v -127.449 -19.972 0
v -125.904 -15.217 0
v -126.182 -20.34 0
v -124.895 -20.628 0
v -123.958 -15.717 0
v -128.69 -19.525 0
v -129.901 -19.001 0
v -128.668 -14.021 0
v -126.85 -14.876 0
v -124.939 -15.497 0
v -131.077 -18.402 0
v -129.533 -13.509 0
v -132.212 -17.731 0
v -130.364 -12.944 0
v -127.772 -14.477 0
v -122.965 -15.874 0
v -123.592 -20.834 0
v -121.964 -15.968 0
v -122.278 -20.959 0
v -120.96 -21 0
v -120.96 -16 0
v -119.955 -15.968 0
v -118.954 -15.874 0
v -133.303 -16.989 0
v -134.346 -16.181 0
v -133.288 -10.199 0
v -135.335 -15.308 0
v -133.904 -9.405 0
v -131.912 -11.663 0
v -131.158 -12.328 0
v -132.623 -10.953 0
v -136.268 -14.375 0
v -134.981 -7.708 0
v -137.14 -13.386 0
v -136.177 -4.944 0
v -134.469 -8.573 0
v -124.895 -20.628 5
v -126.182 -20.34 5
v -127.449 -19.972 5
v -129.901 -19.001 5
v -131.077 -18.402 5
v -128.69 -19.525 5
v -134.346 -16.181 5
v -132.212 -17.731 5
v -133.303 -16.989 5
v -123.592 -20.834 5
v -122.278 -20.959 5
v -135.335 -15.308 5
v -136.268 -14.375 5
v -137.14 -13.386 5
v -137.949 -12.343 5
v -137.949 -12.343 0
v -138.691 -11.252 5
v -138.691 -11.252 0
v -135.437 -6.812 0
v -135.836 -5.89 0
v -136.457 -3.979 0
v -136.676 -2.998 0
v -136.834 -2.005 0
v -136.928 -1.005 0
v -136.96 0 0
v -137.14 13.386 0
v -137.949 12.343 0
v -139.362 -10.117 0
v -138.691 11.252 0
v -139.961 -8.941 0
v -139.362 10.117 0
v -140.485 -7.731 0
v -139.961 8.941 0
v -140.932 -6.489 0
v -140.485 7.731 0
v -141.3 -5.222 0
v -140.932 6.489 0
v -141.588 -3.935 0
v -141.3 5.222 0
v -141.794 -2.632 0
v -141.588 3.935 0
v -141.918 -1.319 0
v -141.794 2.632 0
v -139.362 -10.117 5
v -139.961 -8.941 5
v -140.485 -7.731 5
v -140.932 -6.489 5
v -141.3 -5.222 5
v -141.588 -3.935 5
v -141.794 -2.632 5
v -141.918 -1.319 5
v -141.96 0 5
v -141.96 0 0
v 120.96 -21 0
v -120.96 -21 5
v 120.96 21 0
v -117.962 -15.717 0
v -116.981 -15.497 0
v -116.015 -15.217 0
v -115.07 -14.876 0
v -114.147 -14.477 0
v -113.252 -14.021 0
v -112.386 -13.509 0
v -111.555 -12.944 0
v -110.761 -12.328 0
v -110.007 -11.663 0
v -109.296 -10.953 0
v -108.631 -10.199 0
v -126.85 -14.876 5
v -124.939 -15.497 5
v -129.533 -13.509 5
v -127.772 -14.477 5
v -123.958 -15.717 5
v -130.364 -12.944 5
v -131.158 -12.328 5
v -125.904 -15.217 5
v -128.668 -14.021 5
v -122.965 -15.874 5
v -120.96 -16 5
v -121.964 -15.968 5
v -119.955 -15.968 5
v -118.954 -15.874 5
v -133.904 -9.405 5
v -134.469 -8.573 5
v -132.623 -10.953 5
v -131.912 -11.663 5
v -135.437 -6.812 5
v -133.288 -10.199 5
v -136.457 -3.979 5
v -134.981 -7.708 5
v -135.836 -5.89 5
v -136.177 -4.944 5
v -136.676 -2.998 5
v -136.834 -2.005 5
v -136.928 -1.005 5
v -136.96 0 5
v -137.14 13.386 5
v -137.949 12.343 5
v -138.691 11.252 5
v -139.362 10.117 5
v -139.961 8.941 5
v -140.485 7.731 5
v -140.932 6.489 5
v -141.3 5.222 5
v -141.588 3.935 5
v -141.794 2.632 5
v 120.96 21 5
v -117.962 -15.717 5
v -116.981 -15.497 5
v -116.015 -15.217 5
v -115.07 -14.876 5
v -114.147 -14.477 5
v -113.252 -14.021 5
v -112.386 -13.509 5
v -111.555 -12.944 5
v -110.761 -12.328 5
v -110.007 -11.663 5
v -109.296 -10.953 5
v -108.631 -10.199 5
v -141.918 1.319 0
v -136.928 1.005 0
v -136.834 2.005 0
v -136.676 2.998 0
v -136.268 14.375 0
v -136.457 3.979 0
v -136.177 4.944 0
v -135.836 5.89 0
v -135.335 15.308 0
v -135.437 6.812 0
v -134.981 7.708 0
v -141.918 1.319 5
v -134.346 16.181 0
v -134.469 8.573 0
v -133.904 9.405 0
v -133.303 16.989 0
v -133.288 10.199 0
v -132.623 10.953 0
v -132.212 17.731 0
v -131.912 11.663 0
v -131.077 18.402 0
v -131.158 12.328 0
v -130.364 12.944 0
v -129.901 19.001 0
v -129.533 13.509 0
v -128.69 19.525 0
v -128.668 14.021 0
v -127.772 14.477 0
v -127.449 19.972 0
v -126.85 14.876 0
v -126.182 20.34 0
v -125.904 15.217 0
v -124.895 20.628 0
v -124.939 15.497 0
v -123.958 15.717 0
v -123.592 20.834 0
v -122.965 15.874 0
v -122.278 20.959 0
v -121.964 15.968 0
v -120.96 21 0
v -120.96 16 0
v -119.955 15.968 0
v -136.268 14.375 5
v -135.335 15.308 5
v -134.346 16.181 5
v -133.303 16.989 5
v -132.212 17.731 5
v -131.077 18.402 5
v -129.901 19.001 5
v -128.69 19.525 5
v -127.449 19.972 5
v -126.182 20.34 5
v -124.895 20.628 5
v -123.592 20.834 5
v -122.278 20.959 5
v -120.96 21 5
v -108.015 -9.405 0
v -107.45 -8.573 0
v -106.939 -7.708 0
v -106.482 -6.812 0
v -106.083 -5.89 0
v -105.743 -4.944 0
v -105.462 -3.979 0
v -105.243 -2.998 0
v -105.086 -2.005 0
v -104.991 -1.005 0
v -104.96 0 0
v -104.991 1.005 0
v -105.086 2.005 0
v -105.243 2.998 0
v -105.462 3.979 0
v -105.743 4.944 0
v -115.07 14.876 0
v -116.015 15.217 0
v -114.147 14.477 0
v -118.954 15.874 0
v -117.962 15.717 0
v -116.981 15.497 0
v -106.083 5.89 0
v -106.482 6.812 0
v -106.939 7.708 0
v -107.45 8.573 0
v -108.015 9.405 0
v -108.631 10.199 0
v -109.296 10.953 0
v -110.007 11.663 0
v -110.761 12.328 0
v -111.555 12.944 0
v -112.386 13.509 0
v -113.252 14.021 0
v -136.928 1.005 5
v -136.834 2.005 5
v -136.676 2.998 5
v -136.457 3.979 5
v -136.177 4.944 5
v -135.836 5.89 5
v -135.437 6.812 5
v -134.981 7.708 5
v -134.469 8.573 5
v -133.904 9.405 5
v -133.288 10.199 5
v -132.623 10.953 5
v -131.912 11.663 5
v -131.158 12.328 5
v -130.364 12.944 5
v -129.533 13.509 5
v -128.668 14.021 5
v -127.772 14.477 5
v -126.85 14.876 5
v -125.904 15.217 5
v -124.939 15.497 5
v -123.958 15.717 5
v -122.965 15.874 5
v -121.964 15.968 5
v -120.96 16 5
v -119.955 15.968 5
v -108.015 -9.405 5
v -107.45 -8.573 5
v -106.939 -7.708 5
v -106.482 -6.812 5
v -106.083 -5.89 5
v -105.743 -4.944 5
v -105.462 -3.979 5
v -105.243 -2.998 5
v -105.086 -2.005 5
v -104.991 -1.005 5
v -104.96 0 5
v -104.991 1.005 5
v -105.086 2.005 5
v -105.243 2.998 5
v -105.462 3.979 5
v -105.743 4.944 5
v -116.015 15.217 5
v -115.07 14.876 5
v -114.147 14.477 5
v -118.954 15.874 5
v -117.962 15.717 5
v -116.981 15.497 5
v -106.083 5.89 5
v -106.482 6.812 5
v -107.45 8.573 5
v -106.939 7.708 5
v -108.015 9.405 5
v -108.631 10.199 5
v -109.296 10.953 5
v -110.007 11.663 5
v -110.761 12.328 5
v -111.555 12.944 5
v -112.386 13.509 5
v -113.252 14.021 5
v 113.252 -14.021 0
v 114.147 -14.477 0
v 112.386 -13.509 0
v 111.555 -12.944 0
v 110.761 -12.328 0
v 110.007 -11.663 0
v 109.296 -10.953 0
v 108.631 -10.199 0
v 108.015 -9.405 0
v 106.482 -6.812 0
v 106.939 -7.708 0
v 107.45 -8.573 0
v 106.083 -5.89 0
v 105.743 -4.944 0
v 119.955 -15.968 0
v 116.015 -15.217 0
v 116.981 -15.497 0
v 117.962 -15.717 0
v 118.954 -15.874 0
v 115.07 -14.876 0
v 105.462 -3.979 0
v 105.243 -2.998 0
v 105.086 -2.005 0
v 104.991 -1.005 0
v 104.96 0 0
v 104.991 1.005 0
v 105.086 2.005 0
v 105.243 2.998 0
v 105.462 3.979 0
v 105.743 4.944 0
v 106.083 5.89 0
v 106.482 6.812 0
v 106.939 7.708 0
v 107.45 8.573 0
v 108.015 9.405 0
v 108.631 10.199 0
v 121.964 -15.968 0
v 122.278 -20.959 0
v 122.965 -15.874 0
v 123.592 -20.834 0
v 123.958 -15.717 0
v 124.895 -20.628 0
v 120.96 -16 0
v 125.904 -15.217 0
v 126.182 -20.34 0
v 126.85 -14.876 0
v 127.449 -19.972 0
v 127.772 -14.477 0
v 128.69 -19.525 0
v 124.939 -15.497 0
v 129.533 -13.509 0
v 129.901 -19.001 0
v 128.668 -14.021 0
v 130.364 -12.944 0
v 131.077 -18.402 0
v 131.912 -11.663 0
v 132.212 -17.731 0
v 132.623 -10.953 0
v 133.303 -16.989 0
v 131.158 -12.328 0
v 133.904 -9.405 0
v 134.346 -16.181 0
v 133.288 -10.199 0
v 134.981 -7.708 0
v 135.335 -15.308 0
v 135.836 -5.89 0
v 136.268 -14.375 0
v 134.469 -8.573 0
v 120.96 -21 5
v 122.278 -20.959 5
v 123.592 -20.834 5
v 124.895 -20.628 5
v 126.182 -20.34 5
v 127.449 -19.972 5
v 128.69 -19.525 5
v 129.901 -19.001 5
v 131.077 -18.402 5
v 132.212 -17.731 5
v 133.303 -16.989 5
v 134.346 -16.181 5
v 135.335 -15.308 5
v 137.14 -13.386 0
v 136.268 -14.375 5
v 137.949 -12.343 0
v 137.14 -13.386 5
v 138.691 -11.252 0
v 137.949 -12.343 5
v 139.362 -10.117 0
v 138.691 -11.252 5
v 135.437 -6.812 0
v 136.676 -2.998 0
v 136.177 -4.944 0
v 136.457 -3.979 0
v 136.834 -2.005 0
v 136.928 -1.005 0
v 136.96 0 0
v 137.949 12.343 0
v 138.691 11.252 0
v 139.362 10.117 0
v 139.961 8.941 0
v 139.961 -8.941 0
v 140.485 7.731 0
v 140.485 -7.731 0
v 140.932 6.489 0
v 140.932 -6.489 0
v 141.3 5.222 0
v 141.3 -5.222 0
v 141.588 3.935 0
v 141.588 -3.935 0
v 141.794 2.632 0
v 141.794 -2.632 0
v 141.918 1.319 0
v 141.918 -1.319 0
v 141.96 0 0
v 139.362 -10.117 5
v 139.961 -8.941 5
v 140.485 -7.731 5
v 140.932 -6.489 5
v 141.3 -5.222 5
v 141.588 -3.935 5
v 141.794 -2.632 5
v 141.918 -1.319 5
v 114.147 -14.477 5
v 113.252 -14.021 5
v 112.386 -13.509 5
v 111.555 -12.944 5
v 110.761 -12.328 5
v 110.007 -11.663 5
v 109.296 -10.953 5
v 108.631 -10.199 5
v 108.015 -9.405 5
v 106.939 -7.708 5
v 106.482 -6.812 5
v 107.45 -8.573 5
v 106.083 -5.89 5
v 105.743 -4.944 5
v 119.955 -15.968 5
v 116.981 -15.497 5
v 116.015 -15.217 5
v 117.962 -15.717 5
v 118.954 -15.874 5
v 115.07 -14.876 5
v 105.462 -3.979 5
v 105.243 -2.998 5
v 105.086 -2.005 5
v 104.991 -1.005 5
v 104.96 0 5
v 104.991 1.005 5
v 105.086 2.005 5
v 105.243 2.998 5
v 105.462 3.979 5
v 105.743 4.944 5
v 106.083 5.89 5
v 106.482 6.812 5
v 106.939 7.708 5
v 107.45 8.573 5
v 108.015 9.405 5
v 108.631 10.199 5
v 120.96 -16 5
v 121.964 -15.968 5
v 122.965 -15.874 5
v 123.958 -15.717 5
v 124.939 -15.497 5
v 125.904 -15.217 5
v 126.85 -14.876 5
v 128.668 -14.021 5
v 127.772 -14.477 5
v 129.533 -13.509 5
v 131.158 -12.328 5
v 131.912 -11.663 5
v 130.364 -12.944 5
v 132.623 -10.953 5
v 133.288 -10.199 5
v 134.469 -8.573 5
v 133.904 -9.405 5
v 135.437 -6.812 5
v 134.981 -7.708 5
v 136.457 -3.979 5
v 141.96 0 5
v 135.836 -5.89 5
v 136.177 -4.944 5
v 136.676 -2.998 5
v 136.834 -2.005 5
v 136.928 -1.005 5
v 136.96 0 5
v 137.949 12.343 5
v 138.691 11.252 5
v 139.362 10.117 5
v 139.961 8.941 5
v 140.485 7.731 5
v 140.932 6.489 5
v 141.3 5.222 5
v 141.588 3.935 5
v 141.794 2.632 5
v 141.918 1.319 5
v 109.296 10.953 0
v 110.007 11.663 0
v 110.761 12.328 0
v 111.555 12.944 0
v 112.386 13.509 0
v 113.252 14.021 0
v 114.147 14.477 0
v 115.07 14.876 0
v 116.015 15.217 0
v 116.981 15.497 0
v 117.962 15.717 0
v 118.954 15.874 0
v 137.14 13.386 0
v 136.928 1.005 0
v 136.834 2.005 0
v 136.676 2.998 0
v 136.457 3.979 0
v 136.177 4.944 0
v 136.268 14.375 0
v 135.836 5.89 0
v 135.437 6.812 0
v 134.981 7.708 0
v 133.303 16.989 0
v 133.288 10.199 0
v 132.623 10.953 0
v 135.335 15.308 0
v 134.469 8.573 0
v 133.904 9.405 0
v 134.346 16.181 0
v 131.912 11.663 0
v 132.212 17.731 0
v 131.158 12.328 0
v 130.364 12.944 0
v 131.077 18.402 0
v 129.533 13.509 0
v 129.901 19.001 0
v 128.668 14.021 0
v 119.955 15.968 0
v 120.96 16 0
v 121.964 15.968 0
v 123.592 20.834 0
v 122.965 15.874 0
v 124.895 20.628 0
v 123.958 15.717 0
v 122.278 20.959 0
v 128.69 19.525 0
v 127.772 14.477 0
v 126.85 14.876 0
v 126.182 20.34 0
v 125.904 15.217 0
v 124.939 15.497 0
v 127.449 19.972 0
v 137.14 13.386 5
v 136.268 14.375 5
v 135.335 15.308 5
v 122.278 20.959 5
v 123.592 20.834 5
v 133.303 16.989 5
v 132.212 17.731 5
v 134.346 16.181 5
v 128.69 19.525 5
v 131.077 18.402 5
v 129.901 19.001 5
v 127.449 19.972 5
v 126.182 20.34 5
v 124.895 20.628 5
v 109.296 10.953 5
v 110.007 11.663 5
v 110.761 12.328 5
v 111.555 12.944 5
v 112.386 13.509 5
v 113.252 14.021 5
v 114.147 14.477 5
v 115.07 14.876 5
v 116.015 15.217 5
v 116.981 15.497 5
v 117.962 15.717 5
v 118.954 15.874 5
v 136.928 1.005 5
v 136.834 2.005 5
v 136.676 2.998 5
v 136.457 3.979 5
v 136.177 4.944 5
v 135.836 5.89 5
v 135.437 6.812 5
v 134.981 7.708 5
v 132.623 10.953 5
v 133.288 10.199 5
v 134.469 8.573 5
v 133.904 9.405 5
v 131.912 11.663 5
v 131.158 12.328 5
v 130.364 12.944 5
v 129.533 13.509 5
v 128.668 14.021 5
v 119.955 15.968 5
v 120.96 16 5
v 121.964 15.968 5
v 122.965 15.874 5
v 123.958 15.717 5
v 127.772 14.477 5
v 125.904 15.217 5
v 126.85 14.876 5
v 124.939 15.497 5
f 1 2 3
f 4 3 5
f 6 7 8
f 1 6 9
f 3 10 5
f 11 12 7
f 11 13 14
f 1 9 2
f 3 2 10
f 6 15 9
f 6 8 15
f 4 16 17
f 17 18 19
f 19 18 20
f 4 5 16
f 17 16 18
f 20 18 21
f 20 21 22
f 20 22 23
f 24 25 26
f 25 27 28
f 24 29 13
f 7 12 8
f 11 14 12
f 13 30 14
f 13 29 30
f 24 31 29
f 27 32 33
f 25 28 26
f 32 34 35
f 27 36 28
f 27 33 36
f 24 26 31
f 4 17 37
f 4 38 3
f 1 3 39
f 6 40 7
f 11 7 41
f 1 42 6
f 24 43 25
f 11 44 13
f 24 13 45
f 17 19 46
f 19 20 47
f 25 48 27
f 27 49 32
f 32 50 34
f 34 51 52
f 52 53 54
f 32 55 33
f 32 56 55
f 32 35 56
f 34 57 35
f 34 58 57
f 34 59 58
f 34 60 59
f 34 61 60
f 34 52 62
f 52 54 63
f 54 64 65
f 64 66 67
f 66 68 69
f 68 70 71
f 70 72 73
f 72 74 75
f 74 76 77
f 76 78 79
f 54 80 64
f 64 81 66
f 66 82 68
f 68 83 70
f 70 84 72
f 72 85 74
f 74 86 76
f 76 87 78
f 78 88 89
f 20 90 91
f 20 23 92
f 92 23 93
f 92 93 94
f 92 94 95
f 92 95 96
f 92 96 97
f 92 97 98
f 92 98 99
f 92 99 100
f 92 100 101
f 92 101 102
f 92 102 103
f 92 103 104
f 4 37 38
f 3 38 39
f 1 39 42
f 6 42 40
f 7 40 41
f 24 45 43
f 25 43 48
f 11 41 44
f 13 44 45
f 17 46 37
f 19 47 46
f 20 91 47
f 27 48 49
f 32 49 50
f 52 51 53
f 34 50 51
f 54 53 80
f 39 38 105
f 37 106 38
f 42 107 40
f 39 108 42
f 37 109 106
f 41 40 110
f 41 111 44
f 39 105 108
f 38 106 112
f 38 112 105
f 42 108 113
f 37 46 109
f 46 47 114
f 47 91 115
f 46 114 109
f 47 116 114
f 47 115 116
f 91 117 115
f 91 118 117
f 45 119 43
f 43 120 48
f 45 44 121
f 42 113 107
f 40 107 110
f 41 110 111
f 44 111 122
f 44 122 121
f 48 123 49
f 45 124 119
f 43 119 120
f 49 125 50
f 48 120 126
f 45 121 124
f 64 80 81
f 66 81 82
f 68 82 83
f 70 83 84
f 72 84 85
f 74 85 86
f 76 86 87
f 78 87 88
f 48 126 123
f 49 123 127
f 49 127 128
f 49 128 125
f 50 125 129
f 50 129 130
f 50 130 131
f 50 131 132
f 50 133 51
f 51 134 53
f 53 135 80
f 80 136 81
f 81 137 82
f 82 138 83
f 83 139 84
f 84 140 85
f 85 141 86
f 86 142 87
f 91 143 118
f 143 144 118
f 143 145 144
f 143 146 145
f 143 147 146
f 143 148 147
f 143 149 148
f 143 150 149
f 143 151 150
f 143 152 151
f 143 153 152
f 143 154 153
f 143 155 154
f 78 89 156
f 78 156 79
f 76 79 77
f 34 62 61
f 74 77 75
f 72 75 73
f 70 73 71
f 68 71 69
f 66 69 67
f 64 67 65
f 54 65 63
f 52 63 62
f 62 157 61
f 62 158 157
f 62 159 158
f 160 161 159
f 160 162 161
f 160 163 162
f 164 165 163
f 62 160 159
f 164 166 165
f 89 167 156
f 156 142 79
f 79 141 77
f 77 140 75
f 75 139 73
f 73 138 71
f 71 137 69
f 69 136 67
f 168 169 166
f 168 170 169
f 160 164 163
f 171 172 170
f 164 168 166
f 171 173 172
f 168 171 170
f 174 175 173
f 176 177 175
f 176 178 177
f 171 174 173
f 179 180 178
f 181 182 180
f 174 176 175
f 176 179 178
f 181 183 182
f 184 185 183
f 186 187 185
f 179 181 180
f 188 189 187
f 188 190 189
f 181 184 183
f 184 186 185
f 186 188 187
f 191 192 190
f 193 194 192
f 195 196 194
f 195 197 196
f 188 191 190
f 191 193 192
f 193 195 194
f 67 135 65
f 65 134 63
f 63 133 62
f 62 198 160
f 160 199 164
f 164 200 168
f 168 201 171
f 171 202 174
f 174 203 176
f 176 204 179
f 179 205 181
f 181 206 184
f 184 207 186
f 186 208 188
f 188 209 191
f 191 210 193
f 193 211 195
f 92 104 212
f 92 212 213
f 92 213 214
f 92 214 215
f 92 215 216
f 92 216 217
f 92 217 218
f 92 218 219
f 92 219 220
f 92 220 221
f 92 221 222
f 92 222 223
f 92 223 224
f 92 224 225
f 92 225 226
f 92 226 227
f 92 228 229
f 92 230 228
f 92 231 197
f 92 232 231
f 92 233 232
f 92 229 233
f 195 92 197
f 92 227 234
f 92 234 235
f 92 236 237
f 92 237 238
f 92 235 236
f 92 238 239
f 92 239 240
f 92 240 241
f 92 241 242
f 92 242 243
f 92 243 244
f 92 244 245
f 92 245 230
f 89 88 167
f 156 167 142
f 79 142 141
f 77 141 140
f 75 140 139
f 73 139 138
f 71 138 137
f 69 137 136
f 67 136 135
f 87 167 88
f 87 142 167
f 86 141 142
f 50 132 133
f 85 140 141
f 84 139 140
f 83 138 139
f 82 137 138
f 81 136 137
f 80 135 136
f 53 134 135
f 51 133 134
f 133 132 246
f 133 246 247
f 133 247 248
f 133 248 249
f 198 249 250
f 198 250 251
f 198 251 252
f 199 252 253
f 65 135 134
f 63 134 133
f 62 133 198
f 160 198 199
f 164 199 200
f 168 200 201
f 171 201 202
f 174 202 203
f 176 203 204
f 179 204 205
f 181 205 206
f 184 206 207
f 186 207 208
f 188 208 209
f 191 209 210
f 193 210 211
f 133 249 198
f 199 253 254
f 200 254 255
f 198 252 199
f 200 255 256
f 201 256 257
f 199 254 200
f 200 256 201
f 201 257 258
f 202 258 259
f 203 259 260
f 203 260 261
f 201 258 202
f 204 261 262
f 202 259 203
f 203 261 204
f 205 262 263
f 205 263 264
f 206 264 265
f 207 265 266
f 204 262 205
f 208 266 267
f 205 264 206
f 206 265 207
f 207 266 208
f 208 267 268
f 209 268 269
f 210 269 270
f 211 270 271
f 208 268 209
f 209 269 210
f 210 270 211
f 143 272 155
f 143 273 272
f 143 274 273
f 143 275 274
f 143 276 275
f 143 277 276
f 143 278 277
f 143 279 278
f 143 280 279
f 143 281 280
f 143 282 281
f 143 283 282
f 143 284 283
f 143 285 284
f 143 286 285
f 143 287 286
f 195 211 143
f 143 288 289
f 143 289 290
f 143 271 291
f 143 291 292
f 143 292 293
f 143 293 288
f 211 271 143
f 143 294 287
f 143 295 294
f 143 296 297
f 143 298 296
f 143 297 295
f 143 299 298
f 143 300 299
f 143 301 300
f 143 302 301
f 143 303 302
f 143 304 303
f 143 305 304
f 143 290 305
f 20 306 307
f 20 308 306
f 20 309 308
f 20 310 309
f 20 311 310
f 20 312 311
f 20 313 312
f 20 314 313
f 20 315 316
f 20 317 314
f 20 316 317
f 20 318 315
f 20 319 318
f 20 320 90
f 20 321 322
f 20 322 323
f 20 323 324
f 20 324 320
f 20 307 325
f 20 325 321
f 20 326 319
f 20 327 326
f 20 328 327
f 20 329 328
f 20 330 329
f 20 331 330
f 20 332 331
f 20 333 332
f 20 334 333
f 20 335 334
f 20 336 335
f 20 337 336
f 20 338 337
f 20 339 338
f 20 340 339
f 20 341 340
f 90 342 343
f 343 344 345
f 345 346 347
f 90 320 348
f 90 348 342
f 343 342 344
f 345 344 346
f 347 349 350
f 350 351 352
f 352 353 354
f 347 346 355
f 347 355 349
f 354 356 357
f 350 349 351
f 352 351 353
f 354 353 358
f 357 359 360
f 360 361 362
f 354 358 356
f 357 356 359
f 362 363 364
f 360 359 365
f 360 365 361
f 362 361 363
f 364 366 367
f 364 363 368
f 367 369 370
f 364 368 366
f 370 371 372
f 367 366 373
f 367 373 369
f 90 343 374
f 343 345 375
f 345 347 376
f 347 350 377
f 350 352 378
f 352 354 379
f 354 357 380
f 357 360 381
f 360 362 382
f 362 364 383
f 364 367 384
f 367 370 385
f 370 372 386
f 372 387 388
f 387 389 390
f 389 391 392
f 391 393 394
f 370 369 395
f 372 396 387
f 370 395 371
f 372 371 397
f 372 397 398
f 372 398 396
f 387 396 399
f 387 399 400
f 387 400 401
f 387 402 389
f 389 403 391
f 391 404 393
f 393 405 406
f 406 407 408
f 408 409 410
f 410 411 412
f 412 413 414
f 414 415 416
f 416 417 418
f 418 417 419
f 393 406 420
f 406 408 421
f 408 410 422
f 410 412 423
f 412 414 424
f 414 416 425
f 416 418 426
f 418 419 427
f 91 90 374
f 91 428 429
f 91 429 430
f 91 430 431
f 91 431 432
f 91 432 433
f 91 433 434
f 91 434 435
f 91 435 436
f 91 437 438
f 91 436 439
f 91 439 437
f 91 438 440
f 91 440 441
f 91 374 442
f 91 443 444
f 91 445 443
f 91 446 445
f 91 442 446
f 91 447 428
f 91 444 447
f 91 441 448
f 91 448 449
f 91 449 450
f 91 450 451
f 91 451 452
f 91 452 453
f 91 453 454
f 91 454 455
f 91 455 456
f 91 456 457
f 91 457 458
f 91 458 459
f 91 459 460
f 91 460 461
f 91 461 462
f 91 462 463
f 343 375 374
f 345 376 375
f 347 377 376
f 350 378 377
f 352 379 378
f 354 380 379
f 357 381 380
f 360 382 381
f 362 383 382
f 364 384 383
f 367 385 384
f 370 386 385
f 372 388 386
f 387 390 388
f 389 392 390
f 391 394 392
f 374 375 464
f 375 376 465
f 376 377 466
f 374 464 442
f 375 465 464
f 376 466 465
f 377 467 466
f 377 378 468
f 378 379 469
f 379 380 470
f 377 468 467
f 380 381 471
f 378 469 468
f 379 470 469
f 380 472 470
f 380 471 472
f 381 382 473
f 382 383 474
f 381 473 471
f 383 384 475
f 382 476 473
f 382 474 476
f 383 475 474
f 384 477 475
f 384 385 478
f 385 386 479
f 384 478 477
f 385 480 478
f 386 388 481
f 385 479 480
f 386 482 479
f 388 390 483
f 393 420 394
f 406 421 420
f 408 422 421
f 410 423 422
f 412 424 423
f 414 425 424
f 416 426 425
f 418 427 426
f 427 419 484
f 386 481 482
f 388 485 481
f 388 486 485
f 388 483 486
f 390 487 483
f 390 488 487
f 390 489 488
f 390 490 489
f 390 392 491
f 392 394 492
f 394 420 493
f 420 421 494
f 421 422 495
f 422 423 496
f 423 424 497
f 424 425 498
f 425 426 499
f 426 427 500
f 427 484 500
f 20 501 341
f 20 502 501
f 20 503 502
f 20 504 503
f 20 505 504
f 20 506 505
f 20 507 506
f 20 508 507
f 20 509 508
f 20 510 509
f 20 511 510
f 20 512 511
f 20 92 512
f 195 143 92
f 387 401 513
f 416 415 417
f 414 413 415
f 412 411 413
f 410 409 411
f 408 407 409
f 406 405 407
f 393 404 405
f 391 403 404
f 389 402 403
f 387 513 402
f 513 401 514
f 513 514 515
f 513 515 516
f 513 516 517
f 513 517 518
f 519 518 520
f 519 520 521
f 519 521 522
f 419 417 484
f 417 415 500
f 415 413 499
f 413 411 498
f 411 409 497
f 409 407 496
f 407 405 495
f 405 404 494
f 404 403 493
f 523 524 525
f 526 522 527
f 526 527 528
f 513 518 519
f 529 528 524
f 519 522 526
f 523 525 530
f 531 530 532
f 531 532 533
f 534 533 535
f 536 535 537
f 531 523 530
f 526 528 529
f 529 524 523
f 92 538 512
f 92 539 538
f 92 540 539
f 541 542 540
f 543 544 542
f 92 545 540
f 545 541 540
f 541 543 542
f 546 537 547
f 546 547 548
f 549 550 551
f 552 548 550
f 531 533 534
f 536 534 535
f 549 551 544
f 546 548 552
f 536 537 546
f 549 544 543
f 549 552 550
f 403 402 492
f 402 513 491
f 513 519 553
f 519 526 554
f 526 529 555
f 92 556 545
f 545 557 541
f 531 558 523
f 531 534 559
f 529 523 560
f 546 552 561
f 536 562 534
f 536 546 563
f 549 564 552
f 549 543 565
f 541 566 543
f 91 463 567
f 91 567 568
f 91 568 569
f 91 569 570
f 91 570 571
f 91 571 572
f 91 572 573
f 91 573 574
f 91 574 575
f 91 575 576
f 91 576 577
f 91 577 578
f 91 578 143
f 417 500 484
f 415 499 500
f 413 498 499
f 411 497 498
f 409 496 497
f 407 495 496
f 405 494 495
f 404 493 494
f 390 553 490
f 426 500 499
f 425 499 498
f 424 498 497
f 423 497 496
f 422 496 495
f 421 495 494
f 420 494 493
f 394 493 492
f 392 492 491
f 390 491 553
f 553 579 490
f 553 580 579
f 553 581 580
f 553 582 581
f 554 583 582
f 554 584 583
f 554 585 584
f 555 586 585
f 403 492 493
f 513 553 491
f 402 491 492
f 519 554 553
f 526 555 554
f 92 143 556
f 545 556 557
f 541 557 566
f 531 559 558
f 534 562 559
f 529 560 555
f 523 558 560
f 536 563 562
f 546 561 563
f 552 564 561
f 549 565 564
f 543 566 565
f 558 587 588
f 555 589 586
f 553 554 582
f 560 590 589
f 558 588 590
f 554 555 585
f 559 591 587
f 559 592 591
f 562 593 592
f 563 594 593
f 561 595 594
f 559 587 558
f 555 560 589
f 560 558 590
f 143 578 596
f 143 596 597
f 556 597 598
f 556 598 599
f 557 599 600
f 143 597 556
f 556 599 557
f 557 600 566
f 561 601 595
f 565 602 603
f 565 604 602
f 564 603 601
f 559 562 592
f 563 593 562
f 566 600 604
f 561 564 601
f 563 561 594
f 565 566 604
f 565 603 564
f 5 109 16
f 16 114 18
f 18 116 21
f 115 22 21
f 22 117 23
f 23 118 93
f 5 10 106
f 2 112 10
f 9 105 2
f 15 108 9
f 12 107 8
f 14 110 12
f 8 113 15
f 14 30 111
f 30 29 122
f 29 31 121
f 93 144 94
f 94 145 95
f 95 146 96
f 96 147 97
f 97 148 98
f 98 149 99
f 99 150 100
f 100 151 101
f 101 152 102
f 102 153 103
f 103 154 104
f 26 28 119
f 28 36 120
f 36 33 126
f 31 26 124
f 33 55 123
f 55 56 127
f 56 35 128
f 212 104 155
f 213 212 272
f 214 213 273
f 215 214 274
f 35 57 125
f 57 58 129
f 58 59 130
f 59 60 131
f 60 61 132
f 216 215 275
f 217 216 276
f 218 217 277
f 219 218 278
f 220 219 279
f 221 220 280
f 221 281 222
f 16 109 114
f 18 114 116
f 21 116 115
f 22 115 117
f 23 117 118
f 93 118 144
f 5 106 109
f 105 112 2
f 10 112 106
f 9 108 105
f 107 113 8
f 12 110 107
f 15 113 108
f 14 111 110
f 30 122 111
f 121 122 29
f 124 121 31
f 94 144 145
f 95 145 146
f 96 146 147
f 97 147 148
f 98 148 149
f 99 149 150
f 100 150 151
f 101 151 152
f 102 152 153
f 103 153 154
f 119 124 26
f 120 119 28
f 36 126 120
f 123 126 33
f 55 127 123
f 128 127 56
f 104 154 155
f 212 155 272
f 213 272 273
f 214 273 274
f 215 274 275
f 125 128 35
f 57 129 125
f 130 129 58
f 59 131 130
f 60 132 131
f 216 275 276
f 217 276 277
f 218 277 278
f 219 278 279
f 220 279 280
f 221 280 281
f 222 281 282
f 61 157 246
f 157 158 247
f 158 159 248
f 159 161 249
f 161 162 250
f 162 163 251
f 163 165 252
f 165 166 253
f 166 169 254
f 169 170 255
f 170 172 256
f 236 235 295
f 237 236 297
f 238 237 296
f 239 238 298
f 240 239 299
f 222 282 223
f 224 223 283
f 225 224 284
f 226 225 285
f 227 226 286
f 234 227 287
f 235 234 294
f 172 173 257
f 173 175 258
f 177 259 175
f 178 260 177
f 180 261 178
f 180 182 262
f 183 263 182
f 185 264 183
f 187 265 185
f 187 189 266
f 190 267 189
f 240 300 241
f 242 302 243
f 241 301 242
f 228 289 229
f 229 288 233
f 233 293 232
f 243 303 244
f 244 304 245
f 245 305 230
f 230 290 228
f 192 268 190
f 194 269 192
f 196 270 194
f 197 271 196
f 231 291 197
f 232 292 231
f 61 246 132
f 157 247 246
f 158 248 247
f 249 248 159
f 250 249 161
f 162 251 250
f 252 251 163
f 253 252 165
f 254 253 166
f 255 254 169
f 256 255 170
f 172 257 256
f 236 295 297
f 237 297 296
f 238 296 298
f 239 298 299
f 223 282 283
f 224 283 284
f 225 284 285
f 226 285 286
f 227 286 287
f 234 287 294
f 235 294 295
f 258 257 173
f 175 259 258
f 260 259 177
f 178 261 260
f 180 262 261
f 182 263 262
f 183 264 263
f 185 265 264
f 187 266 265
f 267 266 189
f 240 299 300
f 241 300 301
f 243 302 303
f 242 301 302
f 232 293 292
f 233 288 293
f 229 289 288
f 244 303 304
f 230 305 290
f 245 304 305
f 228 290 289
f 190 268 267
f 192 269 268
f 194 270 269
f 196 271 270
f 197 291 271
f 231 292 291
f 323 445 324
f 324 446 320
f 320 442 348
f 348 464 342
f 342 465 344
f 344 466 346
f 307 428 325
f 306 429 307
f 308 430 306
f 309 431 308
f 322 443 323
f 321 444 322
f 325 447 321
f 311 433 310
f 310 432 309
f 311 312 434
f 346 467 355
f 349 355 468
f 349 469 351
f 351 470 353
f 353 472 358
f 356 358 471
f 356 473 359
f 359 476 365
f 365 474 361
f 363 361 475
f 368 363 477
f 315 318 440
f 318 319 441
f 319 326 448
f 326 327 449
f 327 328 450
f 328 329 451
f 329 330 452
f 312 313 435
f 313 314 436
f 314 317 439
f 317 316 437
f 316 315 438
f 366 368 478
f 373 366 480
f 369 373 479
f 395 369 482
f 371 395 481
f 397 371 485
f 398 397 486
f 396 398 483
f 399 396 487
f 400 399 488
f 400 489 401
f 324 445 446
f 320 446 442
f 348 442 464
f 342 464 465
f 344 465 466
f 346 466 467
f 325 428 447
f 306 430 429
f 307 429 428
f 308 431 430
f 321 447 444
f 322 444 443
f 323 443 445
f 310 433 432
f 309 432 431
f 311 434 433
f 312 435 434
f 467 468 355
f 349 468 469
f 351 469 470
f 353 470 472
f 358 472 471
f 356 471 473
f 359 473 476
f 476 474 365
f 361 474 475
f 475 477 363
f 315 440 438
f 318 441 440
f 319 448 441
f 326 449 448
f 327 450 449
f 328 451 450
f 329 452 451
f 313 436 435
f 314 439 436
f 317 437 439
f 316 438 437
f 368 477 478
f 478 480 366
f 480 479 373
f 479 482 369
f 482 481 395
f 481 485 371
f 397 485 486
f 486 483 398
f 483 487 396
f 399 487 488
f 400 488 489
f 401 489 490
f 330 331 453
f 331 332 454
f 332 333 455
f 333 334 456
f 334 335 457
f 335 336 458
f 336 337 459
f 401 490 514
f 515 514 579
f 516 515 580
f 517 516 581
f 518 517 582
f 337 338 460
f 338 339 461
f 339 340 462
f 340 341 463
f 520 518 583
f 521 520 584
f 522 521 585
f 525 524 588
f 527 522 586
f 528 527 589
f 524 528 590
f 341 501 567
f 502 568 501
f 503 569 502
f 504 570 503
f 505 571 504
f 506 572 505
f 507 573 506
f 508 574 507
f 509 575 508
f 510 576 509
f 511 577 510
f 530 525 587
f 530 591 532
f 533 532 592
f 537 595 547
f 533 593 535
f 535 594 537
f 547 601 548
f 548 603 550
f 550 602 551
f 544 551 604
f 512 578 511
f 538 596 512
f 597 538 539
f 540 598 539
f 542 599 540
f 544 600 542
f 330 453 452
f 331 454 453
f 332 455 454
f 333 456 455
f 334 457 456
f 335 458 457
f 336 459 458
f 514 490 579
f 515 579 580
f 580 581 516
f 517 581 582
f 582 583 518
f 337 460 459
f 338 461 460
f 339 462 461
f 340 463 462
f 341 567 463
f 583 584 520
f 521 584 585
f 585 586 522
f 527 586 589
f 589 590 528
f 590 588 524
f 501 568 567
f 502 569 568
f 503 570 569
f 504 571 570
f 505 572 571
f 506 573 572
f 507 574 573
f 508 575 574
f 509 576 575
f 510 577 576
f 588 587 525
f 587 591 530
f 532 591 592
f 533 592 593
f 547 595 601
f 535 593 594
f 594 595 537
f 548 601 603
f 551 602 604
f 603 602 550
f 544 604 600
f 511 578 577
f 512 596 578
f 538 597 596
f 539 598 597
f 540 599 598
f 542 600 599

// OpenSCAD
// ============================================================
// Turn-N-Tube shelf brace — diagonal triangulating link
// The third link that makes two adjacent shelf units rigid.
//
// Two couplers at one level do not hold the units still. Each
// is pinned at both ends by a round tube in a round hole, so
// the pair forms a four-bar linkage: one degree of freedom, no
// matter how stiff the couplers are or how far apart they sit.
// The units stay parallel and shear sideways. That is
// kinematic, not a stiffness problem, which is why the
// coupler's old gap-filling wall never fixed it — friction was
// all it had.
//
// Two rigid bodies have three degrees of freedom in plan and
// each link removes one, so three links lock them together.
// This brace is the third. It runs diagonally from one unit's
// FRONT post to the other unit's BACK post, so it is not
// parallel to the couplers and takes away the freedom they
// leave behind.
//
// Three links is the entire requirement. One brace anywhere in
// the stack makes the pair rigid; couplers at the other levels
// only add stiffness.
//
// PRINT NOTES:
// - Modelled as a straight bar. The diagonal is where it goes,
//   not what it is.
// - Long. Turned 45 degrees on the bed it needs far less room
//   than it does square on — check the echoed bed placement.
// - PETG, no supports, flat on the bed. Flat runs the
//   perimeters along the load path; on edge would load the
//   part across its layers.
// - It shares posts with the couplers at whichever level it
//   goes on, resting on one at each end, so it sits level a
//   coupler's height above the shelf.
// - One per pair of units, not one per level.
// ============================================================

// ===== MEASURE THESE ON YOUR ACTUAL SHELVES =====
// Outside diameters, edge runs, and clear gaps between solids — every one of
// them is a measurement calipers can physically reach

tube_od = 30; // Outer diameter of the vertical tube post (mm) — outside jaws on the tube

// Tube's outer surface out to the facing edge of its own shelf (mm), measured
// on the side that faces the other unit. Same measurement the coupler uses, and
// it has to match — the two parts share the across-the-gap hole spacing
tube_to_edge = 20;

// Override these only if the two units differ
left_tube_to_edge = tube_to_edge;
right_tube_to_edge = tube_to_edge;

// Front-to-back clear gap between one unit's two posts, inner face to inner
// face (mm). Inside jaws into the open space between the front and back tube
// at any shelf level, wiggled for the smallest reading — that minimum is the
// gap along the line of centres, which is what this wants. Measured at 200.3
// on these shelves and recorded as 200 even. Re-measure it for other units
// rather than deriving it from the board depth: this number sets the brace
// length almost one-for-one
post_clear_gap = 200;

// Ground truth, if you would rather not trust the two spans agreeing. Measure
// the diagonal clear gap across the assembled pair, one unit's front tube to
// the other unit's back tube, nearest faces, and put it here. It runs longer
// than post_clear_gap and can outreach an 8 inch caliper — leave it undef to
// derive the diagonal instead
brace_clear_gap = undef;

// ===== DECIDE THIS =====
// Gap between the two units' facing shelf edges (mm). Must be the same value
// the couplers were printed with — they set the gap, and the brace has to
// agree with where they put the posts
shelf_gap = 5;

// ===== TUNE THESE =====
// Deliberately looser than the coupler's fit. The brace is a length-critical
// part with no slot to take up error, and its diagonal is derived from two
// measurements rather than read off the shelves directly, so this buys
// tolerance for both. It costs about half of it in residual sway, which is
// nothing against the free degree of freedom it removes
hole_clearance = 2;

wall_meat = 5; // PETG thickness around each hole (mm)
brace_height = 5; // Thickness of the bar (mm) — match the coupler so it stacks flat
bed_size = 256; // Print bed, short side (mm)
bed_margin = 6; // Kept clear at the bed edges for brim and skirt (mm)

$fn = 100;

// ===== DERIVED =====
// Across the gap: half a tube, the run out to each shelf edge, and the gap.
// Identical to the coupler's own hole spacing, by construction
across_center_distance = tube_od + left_tube_to_edge + shelf_gap + right_tube_to_edge;

// Front to back along one unit, centre to centre. The clear gap misses one
// tube radius at each end, so a whole diameter goes back on
depth_center_distance = post_clear_gap + tube_od;

// The diagonal itself: front post of one unit to back post of the other
derived_brace_distance = sqrt(across_center_distance * across_center_distance + depth_center_distance * depth_center_distance);
brace_center_distance = is_undef(brace_clear_gap) ? derived_brace_distance : brace_clear_gap + tube_od;

hole_r = tube_od / 2 + hole_clearance / 2;
collar_r = hole_r + wall_meat;

overall_length = brace_center_distance + 2 * collar_r;
overall_width = 2 * collar_r;

// Smallest square of bed the bar needs. Turning it 45 degrees only pays while
// the part stays narrow: past a width of bed_size * (sqrt(2) - 1) the growing
// bounding box costs more than the diagonal gains, and square on wins
turned_square = (overall_length + overall_width) / sqrt(2);
bed_square = min(overall_length, turned_square);
bed_angle = turned_square < overall_length ? 45 : 0;

echo(str("across-the-gap hole spacing = ", across_center_distance, " mm"));
echo(str("front-to-back hole spacing = ", depth_center_distance, " mm"));
echo(str("brace hole spacing = ", brace_center_distance, " mm"));
echo(str("overall size = ", overall_length, " x ", overall_width, " mm"));
echo(str("bed placement = ", bed_angle, " deg, needs a ", bed_square, " mm square"));

assert(post_clear_gap > 0, "post_clear_gap is the open space between the two posts, not a span across them — measure inner face to inner face");
assert(brace_center_distance > 2 * hole_r, "the two holes overlap — check post_clear_gap and shelf_gap");
assert(bed_square <= bed_size - bed_margin, "brace does not fit the print bed — see the echoed bed placement, and split it into two bolted halves if the units really are this deep");

// 2D lozenge (stadium) shape: hull of two circles. Duplicated from
// shelf_tube_coupler.scad rather than shared, because every source here is
// meant to stand on its own
module lozenge_2d(r, cdist) {
  hull() {
    translate([-cdist / 2, 0])
      circle(r = r);
    translate([cdist / 2, 0])
      circle(r = r);
  }
}

module brace() {
  difference() {
    linear_extrude(height = brace_height)
      lozenge_2d(collar_r, brace_center_distance);

    // Through-holes for the two tube posts
    translate([-brace_center_distance / 2, 0, -1])
      cylinder(r = hole_r, h = brace_height + 2);
    translate([brace_center_distance / 2, 0, -1])
      cylinder(r = hole_r, h = brace_height + 2);
  }
}

brace();
